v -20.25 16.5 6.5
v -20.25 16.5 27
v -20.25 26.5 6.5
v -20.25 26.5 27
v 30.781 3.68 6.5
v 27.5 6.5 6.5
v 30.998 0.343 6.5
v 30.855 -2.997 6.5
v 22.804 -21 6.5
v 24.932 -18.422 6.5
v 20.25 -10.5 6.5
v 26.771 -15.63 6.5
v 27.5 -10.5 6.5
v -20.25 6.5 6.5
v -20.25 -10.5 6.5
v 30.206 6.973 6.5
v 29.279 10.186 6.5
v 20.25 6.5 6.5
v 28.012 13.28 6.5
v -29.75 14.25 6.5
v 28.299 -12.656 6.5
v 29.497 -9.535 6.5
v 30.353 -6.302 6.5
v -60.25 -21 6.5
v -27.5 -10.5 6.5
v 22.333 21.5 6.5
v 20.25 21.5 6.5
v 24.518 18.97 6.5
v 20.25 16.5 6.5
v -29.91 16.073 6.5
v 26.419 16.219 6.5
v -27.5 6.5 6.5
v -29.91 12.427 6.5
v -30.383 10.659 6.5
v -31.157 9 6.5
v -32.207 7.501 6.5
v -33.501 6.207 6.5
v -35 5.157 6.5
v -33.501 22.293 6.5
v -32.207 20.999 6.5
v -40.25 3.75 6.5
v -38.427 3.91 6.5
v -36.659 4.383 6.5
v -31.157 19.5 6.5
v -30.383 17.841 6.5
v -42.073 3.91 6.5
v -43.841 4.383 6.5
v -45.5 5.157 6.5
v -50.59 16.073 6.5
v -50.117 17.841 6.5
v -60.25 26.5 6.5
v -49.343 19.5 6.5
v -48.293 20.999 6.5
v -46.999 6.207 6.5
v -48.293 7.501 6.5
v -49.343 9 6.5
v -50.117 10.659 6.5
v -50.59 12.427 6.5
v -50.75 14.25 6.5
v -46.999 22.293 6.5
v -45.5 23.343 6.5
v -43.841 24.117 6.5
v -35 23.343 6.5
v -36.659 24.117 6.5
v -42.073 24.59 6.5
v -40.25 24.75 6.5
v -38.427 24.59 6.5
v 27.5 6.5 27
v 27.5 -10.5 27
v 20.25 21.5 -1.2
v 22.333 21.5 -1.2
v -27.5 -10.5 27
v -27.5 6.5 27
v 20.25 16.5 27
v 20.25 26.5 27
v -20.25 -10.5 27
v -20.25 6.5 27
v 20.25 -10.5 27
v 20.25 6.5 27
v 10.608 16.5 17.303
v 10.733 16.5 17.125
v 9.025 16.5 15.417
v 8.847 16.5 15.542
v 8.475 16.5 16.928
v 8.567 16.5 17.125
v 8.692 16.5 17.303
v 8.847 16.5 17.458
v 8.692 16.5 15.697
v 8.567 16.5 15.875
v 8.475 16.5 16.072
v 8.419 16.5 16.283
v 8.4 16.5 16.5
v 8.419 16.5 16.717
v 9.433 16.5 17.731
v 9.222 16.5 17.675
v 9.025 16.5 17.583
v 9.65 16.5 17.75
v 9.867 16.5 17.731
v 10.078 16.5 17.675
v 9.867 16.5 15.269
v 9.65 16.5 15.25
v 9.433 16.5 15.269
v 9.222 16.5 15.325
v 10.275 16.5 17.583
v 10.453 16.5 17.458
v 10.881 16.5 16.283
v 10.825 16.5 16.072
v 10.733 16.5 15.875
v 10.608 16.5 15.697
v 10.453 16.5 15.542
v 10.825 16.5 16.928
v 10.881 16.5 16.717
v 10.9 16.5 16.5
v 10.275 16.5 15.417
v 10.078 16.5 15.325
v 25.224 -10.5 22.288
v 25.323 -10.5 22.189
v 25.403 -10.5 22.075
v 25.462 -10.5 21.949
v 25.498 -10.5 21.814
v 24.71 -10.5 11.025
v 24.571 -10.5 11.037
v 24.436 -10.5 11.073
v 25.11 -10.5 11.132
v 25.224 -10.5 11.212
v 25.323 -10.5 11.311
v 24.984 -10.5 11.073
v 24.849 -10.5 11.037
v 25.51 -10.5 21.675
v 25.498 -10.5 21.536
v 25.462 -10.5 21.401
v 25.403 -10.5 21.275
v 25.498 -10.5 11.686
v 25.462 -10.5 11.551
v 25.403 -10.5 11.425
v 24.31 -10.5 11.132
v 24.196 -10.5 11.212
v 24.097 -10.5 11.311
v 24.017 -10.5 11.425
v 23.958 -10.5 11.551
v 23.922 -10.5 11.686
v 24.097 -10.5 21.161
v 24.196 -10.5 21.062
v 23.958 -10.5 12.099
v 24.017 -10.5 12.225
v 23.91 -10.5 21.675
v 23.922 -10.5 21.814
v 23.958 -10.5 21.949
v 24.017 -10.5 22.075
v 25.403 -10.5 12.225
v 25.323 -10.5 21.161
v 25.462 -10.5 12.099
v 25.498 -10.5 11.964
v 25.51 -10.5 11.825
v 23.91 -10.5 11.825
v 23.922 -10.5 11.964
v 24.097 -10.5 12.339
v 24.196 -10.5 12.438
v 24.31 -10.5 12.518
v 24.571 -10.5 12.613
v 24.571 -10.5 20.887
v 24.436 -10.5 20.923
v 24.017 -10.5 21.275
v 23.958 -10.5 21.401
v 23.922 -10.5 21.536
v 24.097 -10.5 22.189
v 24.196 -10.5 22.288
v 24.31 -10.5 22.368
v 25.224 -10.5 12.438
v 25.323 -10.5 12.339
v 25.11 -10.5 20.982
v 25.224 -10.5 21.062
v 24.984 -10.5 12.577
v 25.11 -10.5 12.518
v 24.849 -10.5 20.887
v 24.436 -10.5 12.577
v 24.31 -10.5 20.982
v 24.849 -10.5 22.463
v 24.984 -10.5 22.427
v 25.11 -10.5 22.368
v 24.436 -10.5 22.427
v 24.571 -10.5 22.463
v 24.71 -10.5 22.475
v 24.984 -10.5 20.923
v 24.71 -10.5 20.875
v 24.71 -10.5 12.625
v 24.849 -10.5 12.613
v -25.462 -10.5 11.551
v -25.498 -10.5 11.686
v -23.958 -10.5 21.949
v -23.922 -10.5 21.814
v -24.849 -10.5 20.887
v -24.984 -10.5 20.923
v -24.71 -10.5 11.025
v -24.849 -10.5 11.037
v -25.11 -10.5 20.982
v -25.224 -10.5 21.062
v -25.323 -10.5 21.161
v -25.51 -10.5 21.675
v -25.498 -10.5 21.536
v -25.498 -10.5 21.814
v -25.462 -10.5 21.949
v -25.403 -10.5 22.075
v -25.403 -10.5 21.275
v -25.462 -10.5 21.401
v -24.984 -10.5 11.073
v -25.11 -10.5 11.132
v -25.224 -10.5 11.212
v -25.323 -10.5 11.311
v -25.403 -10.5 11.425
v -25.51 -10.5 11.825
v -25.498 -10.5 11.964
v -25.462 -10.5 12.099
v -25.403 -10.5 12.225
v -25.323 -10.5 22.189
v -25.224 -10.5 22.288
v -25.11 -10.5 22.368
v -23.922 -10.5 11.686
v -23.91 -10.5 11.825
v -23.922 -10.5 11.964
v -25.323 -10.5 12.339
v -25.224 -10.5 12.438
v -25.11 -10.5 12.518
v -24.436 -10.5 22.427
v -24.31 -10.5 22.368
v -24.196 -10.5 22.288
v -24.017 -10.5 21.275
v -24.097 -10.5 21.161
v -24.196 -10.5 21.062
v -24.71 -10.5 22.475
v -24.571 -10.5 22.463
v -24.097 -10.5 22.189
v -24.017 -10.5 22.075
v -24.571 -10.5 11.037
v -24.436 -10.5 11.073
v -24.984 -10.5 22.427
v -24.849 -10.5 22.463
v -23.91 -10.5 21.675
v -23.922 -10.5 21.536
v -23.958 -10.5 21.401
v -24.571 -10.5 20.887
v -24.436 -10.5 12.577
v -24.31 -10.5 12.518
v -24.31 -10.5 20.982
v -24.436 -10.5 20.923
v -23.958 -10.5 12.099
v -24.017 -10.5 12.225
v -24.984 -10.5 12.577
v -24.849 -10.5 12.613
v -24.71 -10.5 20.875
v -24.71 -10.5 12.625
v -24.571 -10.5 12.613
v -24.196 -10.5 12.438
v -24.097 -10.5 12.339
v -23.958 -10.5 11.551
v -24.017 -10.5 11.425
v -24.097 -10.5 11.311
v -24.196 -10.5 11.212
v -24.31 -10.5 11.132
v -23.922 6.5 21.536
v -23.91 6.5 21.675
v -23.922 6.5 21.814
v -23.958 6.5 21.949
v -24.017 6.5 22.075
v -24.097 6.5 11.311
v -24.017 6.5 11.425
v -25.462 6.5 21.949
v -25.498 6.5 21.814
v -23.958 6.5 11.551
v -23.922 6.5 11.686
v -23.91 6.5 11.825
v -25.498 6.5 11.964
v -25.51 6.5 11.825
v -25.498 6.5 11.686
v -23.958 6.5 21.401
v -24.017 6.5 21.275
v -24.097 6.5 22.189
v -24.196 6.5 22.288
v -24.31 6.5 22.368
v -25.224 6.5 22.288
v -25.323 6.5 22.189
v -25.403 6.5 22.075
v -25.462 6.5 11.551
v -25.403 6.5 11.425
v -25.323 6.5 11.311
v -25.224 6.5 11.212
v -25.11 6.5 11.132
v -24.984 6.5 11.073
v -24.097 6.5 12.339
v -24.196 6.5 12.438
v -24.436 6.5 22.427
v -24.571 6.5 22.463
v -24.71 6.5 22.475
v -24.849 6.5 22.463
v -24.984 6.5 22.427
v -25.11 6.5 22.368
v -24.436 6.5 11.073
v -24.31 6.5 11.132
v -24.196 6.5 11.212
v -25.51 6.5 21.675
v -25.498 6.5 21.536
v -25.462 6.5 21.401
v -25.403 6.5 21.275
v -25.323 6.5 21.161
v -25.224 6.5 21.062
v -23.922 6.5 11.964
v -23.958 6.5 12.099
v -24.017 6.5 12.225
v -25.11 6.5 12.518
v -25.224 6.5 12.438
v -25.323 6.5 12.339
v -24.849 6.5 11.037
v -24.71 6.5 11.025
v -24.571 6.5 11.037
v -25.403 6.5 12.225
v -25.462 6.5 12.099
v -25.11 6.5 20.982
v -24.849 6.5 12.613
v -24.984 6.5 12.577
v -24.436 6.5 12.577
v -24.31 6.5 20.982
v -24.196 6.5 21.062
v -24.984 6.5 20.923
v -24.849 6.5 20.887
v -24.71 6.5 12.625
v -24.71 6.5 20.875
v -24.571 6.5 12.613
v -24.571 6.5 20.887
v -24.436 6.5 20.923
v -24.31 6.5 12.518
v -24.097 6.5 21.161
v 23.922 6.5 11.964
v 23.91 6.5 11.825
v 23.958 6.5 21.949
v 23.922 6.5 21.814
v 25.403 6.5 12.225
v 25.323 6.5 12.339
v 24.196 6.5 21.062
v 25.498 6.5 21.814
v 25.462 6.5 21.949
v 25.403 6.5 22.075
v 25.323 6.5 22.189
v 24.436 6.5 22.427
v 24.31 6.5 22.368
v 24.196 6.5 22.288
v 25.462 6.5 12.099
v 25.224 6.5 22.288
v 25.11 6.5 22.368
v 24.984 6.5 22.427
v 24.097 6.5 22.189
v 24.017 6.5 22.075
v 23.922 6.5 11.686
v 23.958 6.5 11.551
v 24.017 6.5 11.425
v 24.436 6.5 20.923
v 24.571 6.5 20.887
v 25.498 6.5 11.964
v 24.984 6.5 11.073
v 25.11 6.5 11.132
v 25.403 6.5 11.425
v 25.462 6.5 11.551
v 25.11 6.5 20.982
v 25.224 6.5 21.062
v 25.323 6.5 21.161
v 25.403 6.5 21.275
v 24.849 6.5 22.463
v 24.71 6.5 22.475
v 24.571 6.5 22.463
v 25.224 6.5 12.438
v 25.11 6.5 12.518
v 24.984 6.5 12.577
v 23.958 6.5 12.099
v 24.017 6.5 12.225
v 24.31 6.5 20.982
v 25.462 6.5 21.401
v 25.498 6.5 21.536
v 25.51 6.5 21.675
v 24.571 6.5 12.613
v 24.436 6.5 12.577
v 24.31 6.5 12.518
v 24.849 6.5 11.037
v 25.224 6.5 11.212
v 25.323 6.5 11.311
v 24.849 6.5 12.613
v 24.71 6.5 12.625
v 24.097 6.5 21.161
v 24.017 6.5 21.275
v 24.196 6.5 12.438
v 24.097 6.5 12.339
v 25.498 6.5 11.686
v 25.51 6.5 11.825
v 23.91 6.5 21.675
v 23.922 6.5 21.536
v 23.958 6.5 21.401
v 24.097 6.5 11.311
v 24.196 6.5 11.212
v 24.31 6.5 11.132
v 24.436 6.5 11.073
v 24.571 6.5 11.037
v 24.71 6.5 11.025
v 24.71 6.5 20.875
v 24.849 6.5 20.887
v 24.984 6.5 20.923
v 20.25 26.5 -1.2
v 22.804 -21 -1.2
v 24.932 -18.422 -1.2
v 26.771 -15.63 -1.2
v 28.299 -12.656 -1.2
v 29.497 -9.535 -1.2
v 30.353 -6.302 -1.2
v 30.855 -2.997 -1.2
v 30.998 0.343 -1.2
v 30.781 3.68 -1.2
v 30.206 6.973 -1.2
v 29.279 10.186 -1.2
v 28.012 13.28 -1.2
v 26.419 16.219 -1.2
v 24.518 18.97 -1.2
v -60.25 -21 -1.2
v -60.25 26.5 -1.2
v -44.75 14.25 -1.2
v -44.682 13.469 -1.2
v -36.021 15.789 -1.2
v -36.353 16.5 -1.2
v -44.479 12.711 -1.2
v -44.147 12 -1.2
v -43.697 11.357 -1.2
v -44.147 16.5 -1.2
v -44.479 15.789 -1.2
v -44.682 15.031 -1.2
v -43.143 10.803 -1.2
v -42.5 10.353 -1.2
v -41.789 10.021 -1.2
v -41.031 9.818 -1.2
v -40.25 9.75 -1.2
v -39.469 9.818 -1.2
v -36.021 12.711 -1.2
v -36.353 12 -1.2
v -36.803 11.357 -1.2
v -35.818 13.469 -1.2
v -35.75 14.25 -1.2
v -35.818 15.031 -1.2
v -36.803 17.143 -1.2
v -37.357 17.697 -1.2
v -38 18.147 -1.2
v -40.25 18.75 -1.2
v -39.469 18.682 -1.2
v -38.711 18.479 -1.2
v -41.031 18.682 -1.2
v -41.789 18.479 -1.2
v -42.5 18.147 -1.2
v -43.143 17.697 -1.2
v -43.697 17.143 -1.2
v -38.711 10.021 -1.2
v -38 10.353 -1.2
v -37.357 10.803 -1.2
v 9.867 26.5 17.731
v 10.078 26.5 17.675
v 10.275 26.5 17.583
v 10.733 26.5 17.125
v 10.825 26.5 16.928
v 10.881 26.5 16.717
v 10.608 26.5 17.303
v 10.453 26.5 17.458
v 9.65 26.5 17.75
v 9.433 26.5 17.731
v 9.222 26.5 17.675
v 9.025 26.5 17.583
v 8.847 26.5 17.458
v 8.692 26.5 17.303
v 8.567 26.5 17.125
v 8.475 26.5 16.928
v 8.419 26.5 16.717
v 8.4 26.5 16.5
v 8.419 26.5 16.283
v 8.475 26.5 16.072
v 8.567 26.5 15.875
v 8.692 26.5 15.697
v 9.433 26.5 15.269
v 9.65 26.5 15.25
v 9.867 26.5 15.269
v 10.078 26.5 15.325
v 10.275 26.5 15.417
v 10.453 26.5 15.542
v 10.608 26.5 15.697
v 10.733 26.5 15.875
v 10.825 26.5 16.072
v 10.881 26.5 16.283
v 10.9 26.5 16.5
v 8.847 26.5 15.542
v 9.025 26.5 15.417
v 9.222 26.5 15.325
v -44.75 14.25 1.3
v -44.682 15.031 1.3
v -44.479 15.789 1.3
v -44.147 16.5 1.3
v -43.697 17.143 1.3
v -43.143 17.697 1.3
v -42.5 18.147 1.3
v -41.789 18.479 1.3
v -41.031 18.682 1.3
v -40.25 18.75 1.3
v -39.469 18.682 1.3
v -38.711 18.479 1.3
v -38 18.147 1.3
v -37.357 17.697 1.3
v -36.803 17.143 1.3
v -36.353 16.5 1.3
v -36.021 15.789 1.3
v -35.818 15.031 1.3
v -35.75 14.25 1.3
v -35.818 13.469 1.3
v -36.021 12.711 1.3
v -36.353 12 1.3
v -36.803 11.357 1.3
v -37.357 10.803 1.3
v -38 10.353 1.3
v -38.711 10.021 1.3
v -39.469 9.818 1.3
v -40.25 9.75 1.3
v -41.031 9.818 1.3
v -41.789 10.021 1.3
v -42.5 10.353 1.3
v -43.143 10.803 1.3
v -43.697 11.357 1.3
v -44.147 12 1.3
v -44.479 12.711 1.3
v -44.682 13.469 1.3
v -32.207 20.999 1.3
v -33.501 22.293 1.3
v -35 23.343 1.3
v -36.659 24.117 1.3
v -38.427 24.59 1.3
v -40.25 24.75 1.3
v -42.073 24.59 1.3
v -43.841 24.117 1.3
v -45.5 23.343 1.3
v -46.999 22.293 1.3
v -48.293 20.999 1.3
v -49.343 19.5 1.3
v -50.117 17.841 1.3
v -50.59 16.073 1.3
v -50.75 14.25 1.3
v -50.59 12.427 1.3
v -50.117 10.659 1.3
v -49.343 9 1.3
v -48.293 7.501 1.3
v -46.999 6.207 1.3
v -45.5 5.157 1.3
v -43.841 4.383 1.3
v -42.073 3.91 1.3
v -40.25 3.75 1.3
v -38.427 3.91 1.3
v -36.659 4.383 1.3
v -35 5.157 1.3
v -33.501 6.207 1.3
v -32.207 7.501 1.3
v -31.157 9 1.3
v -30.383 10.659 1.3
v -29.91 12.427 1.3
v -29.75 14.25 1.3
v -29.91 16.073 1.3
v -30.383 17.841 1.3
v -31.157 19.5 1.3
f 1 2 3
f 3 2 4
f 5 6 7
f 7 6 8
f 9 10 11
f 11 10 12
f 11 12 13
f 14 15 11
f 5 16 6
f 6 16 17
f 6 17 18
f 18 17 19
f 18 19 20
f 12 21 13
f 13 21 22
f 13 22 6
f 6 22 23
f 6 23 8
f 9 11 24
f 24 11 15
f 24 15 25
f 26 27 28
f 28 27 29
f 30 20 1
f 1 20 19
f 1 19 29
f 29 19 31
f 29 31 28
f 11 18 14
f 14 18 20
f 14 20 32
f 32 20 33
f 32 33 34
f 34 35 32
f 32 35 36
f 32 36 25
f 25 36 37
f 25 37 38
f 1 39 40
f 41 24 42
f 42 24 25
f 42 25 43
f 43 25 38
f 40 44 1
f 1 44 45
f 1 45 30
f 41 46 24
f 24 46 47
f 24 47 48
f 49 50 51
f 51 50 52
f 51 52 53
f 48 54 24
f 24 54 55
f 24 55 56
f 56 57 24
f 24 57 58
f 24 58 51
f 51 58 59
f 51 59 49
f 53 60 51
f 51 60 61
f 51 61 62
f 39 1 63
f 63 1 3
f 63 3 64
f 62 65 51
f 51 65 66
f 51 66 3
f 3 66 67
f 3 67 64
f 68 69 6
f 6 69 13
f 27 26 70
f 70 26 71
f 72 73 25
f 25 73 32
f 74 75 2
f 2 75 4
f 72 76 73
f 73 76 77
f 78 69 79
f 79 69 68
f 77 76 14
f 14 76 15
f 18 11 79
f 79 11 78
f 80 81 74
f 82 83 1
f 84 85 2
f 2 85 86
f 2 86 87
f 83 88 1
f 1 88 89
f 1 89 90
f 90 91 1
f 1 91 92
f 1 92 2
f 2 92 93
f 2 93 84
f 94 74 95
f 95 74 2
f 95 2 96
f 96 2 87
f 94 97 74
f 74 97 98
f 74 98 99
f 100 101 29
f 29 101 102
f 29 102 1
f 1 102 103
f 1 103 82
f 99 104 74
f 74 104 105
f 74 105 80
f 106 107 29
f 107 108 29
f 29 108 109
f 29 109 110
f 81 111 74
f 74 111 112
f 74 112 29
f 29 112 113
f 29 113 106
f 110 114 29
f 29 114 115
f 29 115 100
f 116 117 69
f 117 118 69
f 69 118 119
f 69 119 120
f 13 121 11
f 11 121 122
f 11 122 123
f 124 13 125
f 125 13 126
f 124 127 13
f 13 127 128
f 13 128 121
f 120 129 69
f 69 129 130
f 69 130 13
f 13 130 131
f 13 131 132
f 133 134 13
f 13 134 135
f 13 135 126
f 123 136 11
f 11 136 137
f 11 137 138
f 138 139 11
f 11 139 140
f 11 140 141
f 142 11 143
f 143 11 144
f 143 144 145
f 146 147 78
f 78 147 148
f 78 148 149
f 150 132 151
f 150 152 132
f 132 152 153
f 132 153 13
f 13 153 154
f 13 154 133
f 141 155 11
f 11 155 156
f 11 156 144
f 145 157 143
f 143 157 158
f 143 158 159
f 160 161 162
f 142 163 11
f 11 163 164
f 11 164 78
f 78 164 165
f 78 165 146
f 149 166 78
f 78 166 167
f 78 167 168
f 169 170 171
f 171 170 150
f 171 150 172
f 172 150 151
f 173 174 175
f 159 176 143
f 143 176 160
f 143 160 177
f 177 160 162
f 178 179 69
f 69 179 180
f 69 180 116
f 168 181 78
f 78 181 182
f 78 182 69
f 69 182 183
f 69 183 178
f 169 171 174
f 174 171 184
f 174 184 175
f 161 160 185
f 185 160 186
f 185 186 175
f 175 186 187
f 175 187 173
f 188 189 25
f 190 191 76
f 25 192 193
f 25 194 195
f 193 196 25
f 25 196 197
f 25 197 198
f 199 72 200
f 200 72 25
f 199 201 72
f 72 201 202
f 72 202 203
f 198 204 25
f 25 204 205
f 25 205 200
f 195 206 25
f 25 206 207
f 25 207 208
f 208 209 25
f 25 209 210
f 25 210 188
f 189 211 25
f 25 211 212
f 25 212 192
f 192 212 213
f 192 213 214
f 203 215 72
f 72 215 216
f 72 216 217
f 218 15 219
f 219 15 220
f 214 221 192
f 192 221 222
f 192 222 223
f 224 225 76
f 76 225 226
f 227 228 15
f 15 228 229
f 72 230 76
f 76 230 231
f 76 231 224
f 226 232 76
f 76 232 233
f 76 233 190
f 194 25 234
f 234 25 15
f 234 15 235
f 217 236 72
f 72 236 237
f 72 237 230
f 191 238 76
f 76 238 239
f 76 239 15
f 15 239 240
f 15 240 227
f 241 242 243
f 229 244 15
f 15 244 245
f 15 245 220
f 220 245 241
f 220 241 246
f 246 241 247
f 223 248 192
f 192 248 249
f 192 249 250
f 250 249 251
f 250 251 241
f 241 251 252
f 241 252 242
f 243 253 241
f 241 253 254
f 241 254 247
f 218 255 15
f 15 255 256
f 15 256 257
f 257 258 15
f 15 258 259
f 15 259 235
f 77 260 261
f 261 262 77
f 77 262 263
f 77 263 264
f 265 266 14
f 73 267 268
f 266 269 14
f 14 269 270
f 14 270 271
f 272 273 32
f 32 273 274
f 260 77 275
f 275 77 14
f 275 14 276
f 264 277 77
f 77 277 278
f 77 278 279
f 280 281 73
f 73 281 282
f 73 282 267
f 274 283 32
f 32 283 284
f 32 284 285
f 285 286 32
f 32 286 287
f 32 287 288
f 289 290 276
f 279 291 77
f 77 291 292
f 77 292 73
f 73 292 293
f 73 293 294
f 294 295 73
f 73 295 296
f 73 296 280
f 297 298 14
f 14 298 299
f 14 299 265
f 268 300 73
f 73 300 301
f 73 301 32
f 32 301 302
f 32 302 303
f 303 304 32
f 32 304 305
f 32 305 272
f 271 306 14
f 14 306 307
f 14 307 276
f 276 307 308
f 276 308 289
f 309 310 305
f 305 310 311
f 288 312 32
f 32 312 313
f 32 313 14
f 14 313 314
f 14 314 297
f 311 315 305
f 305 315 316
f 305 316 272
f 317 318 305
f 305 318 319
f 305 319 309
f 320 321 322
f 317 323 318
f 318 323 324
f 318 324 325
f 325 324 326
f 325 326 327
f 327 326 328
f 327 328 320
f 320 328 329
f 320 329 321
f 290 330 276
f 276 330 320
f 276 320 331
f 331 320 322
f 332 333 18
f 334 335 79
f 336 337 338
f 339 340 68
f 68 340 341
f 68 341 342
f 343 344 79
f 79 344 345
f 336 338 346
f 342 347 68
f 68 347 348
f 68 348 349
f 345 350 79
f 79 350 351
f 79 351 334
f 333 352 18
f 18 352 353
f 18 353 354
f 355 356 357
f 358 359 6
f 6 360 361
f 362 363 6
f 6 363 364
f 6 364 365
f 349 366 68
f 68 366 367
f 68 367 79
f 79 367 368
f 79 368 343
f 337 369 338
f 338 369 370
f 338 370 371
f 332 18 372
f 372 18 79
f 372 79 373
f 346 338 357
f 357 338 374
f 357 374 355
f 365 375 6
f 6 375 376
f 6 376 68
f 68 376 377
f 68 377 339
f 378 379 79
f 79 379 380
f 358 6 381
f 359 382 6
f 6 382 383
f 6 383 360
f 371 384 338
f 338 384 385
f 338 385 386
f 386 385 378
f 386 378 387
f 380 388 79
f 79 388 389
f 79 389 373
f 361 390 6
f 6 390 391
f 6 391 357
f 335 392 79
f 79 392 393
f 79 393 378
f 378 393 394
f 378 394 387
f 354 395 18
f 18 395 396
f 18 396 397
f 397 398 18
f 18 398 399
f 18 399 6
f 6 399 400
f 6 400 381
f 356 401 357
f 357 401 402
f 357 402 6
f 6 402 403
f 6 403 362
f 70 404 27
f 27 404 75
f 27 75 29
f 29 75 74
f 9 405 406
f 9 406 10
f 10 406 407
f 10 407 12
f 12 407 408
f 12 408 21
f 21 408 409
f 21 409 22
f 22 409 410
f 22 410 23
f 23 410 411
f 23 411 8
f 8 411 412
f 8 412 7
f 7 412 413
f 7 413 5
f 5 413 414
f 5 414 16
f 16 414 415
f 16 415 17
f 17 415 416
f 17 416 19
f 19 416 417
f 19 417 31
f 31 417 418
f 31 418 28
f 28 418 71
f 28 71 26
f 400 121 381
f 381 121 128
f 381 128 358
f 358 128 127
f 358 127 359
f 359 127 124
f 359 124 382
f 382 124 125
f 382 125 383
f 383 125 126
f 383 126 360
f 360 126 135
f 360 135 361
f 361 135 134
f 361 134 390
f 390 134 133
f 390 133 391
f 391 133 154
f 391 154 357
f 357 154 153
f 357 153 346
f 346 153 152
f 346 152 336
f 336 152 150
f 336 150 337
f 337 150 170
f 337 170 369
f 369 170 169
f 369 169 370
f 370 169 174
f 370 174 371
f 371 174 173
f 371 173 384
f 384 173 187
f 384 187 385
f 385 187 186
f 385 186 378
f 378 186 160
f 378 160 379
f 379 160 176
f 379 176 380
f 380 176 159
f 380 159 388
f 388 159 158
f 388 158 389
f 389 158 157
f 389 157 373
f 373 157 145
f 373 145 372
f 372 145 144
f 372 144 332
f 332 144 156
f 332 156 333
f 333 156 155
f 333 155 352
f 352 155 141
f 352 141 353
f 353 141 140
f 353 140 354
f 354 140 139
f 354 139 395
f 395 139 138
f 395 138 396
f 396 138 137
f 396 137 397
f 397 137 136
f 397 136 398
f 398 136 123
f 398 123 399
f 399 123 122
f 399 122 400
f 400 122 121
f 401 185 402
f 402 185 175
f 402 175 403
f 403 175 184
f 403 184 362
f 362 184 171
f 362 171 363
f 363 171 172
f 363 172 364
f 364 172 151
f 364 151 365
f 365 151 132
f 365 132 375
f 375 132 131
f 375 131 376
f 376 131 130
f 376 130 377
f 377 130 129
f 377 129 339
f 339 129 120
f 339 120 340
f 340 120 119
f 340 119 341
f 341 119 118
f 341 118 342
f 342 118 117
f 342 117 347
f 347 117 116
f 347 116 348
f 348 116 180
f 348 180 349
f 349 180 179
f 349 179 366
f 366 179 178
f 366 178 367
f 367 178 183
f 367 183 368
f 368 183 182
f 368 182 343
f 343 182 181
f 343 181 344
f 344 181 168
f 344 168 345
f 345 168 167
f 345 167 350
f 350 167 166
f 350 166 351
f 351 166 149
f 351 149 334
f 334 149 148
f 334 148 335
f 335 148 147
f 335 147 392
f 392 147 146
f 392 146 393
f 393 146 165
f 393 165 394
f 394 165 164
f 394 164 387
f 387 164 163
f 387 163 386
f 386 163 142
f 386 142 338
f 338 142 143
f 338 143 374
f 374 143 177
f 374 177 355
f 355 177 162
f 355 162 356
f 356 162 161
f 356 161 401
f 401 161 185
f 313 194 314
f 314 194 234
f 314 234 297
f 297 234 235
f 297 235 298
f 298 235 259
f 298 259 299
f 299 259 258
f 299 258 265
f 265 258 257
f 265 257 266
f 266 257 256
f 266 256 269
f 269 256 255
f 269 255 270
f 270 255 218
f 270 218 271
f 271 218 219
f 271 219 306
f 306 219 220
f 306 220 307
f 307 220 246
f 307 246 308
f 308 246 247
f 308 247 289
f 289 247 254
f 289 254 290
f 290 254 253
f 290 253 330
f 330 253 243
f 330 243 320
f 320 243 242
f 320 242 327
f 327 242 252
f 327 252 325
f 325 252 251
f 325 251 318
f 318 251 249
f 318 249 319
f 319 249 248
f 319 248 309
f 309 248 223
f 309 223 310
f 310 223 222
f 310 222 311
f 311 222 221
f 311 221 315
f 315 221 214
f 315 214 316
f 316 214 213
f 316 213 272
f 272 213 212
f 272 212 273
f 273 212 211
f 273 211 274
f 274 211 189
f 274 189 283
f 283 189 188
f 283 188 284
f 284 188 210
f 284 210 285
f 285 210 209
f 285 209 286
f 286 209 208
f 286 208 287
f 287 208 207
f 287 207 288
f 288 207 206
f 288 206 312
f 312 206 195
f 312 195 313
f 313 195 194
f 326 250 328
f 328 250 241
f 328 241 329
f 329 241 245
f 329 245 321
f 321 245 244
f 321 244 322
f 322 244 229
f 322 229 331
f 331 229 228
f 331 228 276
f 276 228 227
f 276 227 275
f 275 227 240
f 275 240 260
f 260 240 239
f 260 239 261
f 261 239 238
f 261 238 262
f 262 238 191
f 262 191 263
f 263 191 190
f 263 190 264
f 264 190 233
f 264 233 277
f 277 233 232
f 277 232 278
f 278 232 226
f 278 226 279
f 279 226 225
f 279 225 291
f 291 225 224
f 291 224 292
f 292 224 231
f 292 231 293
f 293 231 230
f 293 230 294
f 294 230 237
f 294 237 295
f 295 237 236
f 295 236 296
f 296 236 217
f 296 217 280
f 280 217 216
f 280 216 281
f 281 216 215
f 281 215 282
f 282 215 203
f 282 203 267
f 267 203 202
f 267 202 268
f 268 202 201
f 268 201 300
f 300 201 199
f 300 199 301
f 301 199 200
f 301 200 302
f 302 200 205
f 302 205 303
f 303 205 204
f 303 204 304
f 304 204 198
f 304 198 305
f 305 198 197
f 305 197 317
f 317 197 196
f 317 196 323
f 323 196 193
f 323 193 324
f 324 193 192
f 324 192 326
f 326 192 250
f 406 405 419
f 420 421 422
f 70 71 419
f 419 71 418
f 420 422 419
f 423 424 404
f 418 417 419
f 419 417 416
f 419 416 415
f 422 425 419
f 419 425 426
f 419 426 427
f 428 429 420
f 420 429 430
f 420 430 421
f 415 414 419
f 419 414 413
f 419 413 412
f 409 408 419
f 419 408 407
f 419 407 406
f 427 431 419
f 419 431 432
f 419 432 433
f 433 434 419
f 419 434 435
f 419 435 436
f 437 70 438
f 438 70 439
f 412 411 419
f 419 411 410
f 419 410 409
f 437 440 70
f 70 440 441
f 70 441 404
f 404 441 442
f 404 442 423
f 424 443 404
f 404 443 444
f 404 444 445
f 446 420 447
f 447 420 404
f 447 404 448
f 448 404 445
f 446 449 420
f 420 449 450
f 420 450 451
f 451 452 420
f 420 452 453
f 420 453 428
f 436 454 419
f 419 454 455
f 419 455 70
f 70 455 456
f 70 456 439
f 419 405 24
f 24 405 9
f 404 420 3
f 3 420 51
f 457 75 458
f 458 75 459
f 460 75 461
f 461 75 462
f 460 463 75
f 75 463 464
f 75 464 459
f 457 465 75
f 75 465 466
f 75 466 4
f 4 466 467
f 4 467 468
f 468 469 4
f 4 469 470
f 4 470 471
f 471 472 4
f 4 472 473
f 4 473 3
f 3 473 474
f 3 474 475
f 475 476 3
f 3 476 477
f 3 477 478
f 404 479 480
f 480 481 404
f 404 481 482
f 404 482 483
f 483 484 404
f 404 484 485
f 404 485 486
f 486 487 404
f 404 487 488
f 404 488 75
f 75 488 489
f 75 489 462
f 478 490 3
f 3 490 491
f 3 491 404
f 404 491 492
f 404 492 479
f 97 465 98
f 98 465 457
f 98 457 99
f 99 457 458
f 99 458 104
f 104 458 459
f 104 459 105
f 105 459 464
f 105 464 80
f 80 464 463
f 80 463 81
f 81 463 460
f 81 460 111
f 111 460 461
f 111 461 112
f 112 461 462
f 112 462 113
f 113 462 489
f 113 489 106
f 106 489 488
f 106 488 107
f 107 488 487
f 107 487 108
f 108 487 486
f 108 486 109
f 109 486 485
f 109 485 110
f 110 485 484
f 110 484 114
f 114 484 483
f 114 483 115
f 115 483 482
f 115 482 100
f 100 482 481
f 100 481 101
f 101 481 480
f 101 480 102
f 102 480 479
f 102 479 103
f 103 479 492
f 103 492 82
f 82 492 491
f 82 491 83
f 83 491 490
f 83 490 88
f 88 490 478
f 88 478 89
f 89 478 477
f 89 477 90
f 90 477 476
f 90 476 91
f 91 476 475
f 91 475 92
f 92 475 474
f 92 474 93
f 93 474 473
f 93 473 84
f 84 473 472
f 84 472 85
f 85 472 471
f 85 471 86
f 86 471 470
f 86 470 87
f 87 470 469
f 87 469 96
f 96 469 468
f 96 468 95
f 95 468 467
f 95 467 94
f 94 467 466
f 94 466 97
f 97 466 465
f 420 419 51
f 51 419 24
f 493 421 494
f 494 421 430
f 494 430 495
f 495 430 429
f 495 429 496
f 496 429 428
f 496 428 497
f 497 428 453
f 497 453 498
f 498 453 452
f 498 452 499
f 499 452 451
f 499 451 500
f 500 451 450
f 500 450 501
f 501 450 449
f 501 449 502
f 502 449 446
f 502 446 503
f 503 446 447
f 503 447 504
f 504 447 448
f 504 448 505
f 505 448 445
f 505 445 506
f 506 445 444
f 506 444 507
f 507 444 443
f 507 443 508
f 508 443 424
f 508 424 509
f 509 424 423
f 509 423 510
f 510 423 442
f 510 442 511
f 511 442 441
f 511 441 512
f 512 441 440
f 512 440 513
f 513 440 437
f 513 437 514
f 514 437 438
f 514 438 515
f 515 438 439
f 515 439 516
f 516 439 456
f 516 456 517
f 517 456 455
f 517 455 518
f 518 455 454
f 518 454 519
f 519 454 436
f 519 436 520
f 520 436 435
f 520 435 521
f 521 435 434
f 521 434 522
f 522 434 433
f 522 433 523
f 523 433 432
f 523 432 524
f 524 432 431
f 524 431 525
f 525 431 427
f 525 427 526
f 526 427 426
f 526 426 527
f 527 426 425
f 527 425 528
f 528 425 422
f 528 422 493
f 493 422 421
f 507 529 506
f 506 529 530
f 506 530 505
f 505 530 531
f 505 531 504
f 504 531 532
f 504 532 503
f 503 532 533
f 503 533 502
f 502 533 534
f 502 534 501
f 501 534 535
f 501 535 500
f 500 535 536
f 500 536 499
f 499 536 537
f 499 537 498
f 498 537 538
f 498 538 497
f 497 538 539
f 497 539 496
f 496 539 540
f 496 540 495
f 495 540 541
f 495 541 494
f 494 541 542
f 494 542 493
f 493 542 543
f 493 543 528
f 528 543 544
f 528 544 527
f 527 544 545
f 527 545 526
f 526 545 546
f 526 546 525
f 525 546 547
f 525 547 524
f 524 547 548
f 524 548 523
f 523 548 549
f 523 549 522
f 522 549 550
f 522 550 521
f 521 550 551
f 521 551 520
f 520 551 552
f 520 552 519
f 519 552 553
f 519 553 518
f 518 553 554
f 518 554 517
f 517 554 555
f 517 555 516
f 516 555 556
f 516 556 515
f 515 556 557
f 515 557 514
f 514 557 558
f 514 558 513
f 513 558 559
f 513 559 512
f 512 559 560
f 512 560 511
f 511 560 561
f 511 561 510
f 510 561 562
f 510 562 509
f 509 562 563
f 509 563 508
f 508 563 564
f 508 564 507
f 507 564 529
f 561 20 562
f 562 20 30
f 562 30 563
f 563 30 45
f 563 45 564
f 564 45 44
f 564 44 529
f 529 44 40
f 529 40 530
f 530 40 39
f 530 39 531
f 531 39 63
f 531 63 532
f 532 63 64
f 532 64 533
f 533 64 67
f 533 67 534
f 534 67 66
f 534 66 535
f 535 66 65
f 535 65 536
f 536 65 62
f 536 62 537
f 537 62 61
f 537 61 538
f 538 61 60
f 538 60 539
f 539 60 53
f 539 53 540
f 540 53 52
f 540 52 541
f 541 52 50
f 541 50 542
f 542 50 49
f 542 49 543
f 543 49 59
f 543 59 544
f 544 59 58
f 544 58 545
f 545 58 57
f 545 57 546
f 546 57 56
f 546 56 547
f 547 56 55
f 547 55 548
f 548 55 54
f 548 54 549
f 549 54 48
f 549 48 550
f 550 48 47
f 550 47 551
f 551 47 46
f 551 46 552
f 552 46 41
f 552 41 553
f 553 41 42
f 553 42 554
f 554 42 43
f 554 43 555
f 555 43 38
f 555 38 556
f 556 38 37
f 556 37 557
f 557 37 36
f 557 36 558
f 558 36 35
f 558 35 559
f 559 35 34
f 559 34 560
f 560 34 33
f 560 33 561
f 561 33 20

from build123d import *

# Parameters (mm, degrees)
ESQUISSE1_W              = 55
ESQUISSE1_H              = 43
BOSS_EXTRU_1_DEPTH       = 27
ESQUISSE2_W              = 40.5
ESQUISSE2_H              = 21.676575317
ENL_V_MAT_EXTRU_1_DEPTH  = 38
ESQUISSE3_R              = 0.7
ENL_V_MAT_EXTRU_2_DEPTH  = 43
ESQUISSE4_W              = 55
ESQUISSE4_H              = 20.5
ENL_V_MAT_EXTRU_3_DEPTH  = 11
ENL_V_MAT_EXTRU_6_REACH  = 66.933
ESQUISSE5_W              = 20.5
ESQUISSE5_H              = 10
ESQUISSE6_W              = 7.25
ESQUISSE6_H              = 20.5
ENL_V_MAT_EXTRU_7_DEPTH  = 5
ESQUISSE7_R              = 31
BOSS_EXTRU_2_DEPTH       = 6.5
ESQUISSE8_R              = 41
ESQUISSE8_R_2            = 31
ENL_V_MAT_EXTRU_8_DEPTH  = 6.5
TROU_TARAUD_M2X0_41_D    = 1.6
ESQUISSE10_R             = 10.5
ENL_V_MAT_EXTRU_9_DEPTH  = 4.5
ESQUISSE11_R             = 4.5
ENL_V_MAT_EXTRU_10_DEPTH = 2
ESQUISSE12_R             = 9.25
ESQUISSE12_R_2           = 1.25
BOSS_EXTRU_3_DEPTH       = 5
ESQUISSE13_W             = 50.114904395
ESQUISSE13_H             = 12.012600019
ENL_V_MAT_EXTRU_11_DEPTH = 6.5
BOSS_EXTRU_4_START       = 1.2
BOSS_EXTRU_4_DEPTH       = 1.2
ESQUISSE15_W             = 53.005482756
ESQUISSE15_H             = 10
ENL_V_MAT_EXTRU_12_DEPTH = 7.7
ESQUISSE16_R             = 4.5
ENL_V_MAT_EXTRU_13_DEPTH = 1.2
BOSS_EXTRU_5_START       = -28.2
ESQUISSE17_W             = 40.5
ESQUISSE17_H             = 5
BOSS_EXTRU_5_DEPTH       = 28.2
ESQUISSE18_R             = 1
ENL_V_MAT_EXTRU_14_DEPTH = 10
TROU_TARAUD_M3X0_51_D    = 2.5
ESQUISSE22_R             = 4.5
BOSS_EXTRU_6_DEPTH       = 7.7
ESQUISSE23_R             = 10.5
ENL_V_MAT_EXTRU_15_DEPTH = 5.2
ESQUISSE24_R             = 12.885190895
BOSS_EXTRU_7_DEPTH       = 7.7


with BuildPart() as part:
    # Esquisse1 → Boss.-Extru.1 (new body)
    with BuildSketch(Plane.XY):
        Rectangle(ESQUISSE1_W, ESQUISSE1_H)
    extrude(amount=BOSS_EXTRU_1_DEPTH)

    # Esquisse2 → Enlèv. mat.-Extru.1 (cut)
    with BuildSketch(Plane.XZ.offset(21.5)):
        with Locations((0, 17.338287659)):
            Rectangle(ESQUISSE2_W, ESQUISSE2_H)
    extrude(amount=-ENL_V_MAT_EXTRU_1_DEPTH, mode=Mode.SUBTRACT)

    # Esquisse3 → Enlèv. mat.-Extru.2 (cut)
    with BuildSketch(Plane.XZ.offset(21.5)):
        with Locations(Location((-24.71, 21.675, 0), (0, 0, 270))):
            Circle(ESQUISSE3_R)
        with Locations(Location((-24.71, 11.825, 0), (0, 0, 270))):
            Circle(ESQUISSE3_R)
        with Locations(Location((24.71, 11.825, 0), (0, 0, 270))):
            Circle(ESQUISSE3_R)
        with Locations(Location((24.71, 21.675, 0), (0, 0, 270))):
            Circle(ESQUISSE3_R)
    extrude(amount=-ENL_V_MAT_EXTRU_2_DEPTH, mode=Mode.SUBTRACT)

    # Esquisse4 → Enlèv. mat.-Extru.3 (cut)
    with BuildSketch(Plane.XZ.offset(21.5)):
        with Locations((0, 16.75)):
            Rectangle(ESQUISSE4_W, ESQUISSE4_H)
    extrude(amount=-ENL_V_MAT_EXTRU_3_DEPTH, mode=Mode.SUBTRACT)

    # Enlèv. mat.-Extru.6: up to this face of the body (flat: up to its plane)
    enl_v_mat_extru_6_end = Plane(part.part.faces().sort_by_distance((27.5, 3.85676109, 12.716595404))[0])
    # Esquisse5 → Enlèv. mat.-Extru.6 (cut, up to the picked face)
    with BuildSketch(Plane.ZY.offset(27.5), mode=Mode.PRIVATE) as enl_v_mat_extru_6_sk1:
        with Locations((16.75, 11.5)):
            Rectangle(ESQUISSE5_W, ESQUISSE5_H)
    enl_v_mat_extru_6_tool1 = split(extrude(enl_v_mat_extru_6_sk1.sketch, amount=-ENL_V_MAT_EXTRU_6_REACH, mode=Mode.PRIVATE), bisect_by=enl_v_mat_extru_6_end, keep=Keep.BOTH, mode=Mode.PRIVATE)
    add(enl_v_mat_extru_6_tool1.solids().sort_by(Axis((-27.5, 11.5, 16.75), (1, 0, 0)))[0], mode=Mode.SUBTRACT)

    # Esquisse6 → Enlèv. mat.-Extru.7 (cut)
    with BuildSketch(Plane.XZ.offset(-16.5)):
        with Locations((-23.875, 16.75)):
            Rectangle(ESQUISSE6_W, ESQUISSE6_H)
        with Locations((23.875, 16.75)):
            Rectangle(ESQUISSE6_W, ESQUISSE6_H)
    extrude(amount=-ENL_V_MAT_EXTRU_7_DEPTH, mode=Mode.SUBTRACT)

    # Esquisse7 → Boss.-Extru.2 (add)
    with BuildSketch(Plane(origin=(0, 0, 0), x_dir=(-1, 0, 0), z_dir=(0, 0, -1))):
        Circle(ESQUISSE7_R)
    extrude(amount=-BOSS_EXTRU_2_DEPTH)

    # Esquisse8 → Enlèv. mat.-Extru.8 (cut)
    with BuildSketch(Plane(origin=(0, 0, 0), x_dir=(-1, 0, 0), z_dir=(0, 0, -1))):
        Circle(ESQUISSE8_R)
        Circle(ESQUISSE8_R_2, mode=Mode.SUBTRACT)
    extrude(amount=-ENL_V_MAT_EXTRU_8_DEPTH, mode=Mode.SUBTRACT)

    # Trou taraudé M2x0.41 (through all)
    with Locations(Plane(origin=(-24.71, -10.5, 21.675), x_dir=(0, 0, -1), z_dir=(0, -1, 0))):
        with Locations((0, 0), (9.85, 0), (0, 49.42), (9.85, 49.42)):
            Hole(TROU_TARAUD_M2X0_41_D / 2)

    # Esquisse10 → Enlèv. mat.-Extru.9 (cut)
    with BuildSketch(Plane.XY.offset(6.5)):
        Circle(ESQUISSE10_R)
    extrude(amount=-ENL_V_MAT_EXTRU_9_DEPTH, mode=Mode.SUBTRACT)

    # Esquisse11 → Enlèv. mat.-Extru.10 (cut)
    with BuildSketch(Plane.XY.offset(2)):
        Circle(ESQUISSE11_R)
    extrude(amount=-ENL_V_MAT_EXTRU_10_DEPTH, mode=Mode.SUBTRACT)

    # Esquisse12 → Boss.-Extru.3 (add)
    with BuildSketch(Plane(origin=(0, 21.5, 0), x_dir=(1, 0, 0), z_dir=(0, 1, 0))):
        with Locations(Location((0, -15.876822983, 0), (0, 0, 90))):
            Circle(ESQUISSE12_R)
        with Locations(Location((0, -15.876822983, 0), (0, 0, 270))):
            Circle(ESQUISSE12_R_2, mode=Mode.SUBTRACT)
    extrude(amount=BOSS_EXTRU_3_DEPTH)

    # Esquisse13 → Enlèv. mat.-Extru.11 (cut)
    with BuildSketch(Plane.XY.offset(6.5)):
        with Locations((-0.983340997, 27.50630001)):
            Rectangle(ESQUISSE13_W, ESQUISSE13_H)
    extrude(amount=-ENL_V_MAT_EXTRU_11_DEPTH, mode=Mode.SUBTRACT)

    # Esquisse14 → Boss.-Extru.4 (add)
    with BuildSketch(Plane(origin=(0, 0, 0), x_dir=(-1, 0, 0), z_dir=(0, 0, -1)).offset(BOSS_EXTRU_4_START)):
        with BuildLine():
            Line((-22.332711434, 21.5), (22.332711434, 21.5))
            ThreePointArc((22.332711434, 21.5), (0, -31), (-22.332711434, 21.5))
        make_face()
    extrude(amount=-BOSS_EXTRU_4_DEPTH)

    # Esquisse15 → Enlèv. mat.-Extru.12 (cut)
    with BuildSketch(Plane.XY.offset(6.5)):
        with Locations((0, -26)):
            Rectangle(ESQUISSE15_W, ESQUISSE15_H)
    extrude(amount=-ENL_V_MAT_EXTRU_12_DEPTH, mode=Mode.SUBTRACT)

    # Esquisse16 → Enlèv. mat.-Extru.13 (cut)
    with BuildSketch(Plane.XY):
        Circle(ESQUISSE16_R)
    extrude(amount=-ENL_V_MAT_EXTRU_13_DEPTH, mode=Mode.SUBTRACT)

    # Esquisse17 → Boss.-Extru.5 (add)
    with BuildSketch(Plane.XY.offset(27).offset(BOSS_EXTRU_5_START)):
        with Locations((0, 24)):
            Rectangle(ESQUISSE17_W, ESQUISSE17_H)
    extrude(amount=BOSS_EXTRU_5_DEPTH)

    # Esquisse18 → Enlèv. mat.-Extru.14 (cut)
    with BuildSketch(Plane(origin=(0, 26.5, 0), x_dir=(1, 0, 0), z_dir=(0, 1, 0))):
        with Locations(Location((9.65, -16.5, 0), (0, 0, 270))):
            Circle(ESQUISSE18_R)
    extrude(amount=-ENL_V_MAT_EXTRU_14_DEPTH, mode=Mode.SUBTRACT)

    # Trou taraudé M3x0.51 (through all)
    with Locations(Plane(origin=(9.65, 26.5, 16.5), x_dir=(0, 0, 1), z_dir=(0, 1, 0))):
        with Locations((0, 0)):
            Hole(TROU_TARAUD_M3X0_51_D / 2)

    # Esquisse22 → Boss.-Extru.6 (add)
    with BuildSketch(Plane(origin=(0, 0, -1.2), x_dir=(-1, 0, 0), z_dir=(0, 0, -1))):
        Polygon((20.25, 26.5), (60.25, 26.5), (60.25, 2), (60.25, -21), (20.25, -21), (20.25, 2), align=None)
        with Locations((40.25, 14.25)):
            Circle(ESQUISSE22_R, mode=Mode.SUBTRACT)
    extrude(amount=-BOSS_EXTRU_6_DEPTH)

    # Esquisse23 → Enlèv. mat.-Extru.15 (cut)
    with BuildSketch(Plane.XY.offset(6.5)):
        with Locations((-40.25, 14.25)):
            Circle(ESQUISSE23_R)
    extrude(amount=-ENL_V_MAT_EXTRU_15_DEPTH, mode=Mode.SUBTRACT)

    # Esquisse24 → Boss.-Extru.7 (add)
    with BuildSketch(Plane(origin=(0, 0, -1.2), x_dir=(-1, 0, 0), z_dir=(0, 0, -1))):
        Circle(ESQUISSE24_R)
    extrude(amount=-BOSS_EXTRU_7_DEPTH)


solid = part.part
